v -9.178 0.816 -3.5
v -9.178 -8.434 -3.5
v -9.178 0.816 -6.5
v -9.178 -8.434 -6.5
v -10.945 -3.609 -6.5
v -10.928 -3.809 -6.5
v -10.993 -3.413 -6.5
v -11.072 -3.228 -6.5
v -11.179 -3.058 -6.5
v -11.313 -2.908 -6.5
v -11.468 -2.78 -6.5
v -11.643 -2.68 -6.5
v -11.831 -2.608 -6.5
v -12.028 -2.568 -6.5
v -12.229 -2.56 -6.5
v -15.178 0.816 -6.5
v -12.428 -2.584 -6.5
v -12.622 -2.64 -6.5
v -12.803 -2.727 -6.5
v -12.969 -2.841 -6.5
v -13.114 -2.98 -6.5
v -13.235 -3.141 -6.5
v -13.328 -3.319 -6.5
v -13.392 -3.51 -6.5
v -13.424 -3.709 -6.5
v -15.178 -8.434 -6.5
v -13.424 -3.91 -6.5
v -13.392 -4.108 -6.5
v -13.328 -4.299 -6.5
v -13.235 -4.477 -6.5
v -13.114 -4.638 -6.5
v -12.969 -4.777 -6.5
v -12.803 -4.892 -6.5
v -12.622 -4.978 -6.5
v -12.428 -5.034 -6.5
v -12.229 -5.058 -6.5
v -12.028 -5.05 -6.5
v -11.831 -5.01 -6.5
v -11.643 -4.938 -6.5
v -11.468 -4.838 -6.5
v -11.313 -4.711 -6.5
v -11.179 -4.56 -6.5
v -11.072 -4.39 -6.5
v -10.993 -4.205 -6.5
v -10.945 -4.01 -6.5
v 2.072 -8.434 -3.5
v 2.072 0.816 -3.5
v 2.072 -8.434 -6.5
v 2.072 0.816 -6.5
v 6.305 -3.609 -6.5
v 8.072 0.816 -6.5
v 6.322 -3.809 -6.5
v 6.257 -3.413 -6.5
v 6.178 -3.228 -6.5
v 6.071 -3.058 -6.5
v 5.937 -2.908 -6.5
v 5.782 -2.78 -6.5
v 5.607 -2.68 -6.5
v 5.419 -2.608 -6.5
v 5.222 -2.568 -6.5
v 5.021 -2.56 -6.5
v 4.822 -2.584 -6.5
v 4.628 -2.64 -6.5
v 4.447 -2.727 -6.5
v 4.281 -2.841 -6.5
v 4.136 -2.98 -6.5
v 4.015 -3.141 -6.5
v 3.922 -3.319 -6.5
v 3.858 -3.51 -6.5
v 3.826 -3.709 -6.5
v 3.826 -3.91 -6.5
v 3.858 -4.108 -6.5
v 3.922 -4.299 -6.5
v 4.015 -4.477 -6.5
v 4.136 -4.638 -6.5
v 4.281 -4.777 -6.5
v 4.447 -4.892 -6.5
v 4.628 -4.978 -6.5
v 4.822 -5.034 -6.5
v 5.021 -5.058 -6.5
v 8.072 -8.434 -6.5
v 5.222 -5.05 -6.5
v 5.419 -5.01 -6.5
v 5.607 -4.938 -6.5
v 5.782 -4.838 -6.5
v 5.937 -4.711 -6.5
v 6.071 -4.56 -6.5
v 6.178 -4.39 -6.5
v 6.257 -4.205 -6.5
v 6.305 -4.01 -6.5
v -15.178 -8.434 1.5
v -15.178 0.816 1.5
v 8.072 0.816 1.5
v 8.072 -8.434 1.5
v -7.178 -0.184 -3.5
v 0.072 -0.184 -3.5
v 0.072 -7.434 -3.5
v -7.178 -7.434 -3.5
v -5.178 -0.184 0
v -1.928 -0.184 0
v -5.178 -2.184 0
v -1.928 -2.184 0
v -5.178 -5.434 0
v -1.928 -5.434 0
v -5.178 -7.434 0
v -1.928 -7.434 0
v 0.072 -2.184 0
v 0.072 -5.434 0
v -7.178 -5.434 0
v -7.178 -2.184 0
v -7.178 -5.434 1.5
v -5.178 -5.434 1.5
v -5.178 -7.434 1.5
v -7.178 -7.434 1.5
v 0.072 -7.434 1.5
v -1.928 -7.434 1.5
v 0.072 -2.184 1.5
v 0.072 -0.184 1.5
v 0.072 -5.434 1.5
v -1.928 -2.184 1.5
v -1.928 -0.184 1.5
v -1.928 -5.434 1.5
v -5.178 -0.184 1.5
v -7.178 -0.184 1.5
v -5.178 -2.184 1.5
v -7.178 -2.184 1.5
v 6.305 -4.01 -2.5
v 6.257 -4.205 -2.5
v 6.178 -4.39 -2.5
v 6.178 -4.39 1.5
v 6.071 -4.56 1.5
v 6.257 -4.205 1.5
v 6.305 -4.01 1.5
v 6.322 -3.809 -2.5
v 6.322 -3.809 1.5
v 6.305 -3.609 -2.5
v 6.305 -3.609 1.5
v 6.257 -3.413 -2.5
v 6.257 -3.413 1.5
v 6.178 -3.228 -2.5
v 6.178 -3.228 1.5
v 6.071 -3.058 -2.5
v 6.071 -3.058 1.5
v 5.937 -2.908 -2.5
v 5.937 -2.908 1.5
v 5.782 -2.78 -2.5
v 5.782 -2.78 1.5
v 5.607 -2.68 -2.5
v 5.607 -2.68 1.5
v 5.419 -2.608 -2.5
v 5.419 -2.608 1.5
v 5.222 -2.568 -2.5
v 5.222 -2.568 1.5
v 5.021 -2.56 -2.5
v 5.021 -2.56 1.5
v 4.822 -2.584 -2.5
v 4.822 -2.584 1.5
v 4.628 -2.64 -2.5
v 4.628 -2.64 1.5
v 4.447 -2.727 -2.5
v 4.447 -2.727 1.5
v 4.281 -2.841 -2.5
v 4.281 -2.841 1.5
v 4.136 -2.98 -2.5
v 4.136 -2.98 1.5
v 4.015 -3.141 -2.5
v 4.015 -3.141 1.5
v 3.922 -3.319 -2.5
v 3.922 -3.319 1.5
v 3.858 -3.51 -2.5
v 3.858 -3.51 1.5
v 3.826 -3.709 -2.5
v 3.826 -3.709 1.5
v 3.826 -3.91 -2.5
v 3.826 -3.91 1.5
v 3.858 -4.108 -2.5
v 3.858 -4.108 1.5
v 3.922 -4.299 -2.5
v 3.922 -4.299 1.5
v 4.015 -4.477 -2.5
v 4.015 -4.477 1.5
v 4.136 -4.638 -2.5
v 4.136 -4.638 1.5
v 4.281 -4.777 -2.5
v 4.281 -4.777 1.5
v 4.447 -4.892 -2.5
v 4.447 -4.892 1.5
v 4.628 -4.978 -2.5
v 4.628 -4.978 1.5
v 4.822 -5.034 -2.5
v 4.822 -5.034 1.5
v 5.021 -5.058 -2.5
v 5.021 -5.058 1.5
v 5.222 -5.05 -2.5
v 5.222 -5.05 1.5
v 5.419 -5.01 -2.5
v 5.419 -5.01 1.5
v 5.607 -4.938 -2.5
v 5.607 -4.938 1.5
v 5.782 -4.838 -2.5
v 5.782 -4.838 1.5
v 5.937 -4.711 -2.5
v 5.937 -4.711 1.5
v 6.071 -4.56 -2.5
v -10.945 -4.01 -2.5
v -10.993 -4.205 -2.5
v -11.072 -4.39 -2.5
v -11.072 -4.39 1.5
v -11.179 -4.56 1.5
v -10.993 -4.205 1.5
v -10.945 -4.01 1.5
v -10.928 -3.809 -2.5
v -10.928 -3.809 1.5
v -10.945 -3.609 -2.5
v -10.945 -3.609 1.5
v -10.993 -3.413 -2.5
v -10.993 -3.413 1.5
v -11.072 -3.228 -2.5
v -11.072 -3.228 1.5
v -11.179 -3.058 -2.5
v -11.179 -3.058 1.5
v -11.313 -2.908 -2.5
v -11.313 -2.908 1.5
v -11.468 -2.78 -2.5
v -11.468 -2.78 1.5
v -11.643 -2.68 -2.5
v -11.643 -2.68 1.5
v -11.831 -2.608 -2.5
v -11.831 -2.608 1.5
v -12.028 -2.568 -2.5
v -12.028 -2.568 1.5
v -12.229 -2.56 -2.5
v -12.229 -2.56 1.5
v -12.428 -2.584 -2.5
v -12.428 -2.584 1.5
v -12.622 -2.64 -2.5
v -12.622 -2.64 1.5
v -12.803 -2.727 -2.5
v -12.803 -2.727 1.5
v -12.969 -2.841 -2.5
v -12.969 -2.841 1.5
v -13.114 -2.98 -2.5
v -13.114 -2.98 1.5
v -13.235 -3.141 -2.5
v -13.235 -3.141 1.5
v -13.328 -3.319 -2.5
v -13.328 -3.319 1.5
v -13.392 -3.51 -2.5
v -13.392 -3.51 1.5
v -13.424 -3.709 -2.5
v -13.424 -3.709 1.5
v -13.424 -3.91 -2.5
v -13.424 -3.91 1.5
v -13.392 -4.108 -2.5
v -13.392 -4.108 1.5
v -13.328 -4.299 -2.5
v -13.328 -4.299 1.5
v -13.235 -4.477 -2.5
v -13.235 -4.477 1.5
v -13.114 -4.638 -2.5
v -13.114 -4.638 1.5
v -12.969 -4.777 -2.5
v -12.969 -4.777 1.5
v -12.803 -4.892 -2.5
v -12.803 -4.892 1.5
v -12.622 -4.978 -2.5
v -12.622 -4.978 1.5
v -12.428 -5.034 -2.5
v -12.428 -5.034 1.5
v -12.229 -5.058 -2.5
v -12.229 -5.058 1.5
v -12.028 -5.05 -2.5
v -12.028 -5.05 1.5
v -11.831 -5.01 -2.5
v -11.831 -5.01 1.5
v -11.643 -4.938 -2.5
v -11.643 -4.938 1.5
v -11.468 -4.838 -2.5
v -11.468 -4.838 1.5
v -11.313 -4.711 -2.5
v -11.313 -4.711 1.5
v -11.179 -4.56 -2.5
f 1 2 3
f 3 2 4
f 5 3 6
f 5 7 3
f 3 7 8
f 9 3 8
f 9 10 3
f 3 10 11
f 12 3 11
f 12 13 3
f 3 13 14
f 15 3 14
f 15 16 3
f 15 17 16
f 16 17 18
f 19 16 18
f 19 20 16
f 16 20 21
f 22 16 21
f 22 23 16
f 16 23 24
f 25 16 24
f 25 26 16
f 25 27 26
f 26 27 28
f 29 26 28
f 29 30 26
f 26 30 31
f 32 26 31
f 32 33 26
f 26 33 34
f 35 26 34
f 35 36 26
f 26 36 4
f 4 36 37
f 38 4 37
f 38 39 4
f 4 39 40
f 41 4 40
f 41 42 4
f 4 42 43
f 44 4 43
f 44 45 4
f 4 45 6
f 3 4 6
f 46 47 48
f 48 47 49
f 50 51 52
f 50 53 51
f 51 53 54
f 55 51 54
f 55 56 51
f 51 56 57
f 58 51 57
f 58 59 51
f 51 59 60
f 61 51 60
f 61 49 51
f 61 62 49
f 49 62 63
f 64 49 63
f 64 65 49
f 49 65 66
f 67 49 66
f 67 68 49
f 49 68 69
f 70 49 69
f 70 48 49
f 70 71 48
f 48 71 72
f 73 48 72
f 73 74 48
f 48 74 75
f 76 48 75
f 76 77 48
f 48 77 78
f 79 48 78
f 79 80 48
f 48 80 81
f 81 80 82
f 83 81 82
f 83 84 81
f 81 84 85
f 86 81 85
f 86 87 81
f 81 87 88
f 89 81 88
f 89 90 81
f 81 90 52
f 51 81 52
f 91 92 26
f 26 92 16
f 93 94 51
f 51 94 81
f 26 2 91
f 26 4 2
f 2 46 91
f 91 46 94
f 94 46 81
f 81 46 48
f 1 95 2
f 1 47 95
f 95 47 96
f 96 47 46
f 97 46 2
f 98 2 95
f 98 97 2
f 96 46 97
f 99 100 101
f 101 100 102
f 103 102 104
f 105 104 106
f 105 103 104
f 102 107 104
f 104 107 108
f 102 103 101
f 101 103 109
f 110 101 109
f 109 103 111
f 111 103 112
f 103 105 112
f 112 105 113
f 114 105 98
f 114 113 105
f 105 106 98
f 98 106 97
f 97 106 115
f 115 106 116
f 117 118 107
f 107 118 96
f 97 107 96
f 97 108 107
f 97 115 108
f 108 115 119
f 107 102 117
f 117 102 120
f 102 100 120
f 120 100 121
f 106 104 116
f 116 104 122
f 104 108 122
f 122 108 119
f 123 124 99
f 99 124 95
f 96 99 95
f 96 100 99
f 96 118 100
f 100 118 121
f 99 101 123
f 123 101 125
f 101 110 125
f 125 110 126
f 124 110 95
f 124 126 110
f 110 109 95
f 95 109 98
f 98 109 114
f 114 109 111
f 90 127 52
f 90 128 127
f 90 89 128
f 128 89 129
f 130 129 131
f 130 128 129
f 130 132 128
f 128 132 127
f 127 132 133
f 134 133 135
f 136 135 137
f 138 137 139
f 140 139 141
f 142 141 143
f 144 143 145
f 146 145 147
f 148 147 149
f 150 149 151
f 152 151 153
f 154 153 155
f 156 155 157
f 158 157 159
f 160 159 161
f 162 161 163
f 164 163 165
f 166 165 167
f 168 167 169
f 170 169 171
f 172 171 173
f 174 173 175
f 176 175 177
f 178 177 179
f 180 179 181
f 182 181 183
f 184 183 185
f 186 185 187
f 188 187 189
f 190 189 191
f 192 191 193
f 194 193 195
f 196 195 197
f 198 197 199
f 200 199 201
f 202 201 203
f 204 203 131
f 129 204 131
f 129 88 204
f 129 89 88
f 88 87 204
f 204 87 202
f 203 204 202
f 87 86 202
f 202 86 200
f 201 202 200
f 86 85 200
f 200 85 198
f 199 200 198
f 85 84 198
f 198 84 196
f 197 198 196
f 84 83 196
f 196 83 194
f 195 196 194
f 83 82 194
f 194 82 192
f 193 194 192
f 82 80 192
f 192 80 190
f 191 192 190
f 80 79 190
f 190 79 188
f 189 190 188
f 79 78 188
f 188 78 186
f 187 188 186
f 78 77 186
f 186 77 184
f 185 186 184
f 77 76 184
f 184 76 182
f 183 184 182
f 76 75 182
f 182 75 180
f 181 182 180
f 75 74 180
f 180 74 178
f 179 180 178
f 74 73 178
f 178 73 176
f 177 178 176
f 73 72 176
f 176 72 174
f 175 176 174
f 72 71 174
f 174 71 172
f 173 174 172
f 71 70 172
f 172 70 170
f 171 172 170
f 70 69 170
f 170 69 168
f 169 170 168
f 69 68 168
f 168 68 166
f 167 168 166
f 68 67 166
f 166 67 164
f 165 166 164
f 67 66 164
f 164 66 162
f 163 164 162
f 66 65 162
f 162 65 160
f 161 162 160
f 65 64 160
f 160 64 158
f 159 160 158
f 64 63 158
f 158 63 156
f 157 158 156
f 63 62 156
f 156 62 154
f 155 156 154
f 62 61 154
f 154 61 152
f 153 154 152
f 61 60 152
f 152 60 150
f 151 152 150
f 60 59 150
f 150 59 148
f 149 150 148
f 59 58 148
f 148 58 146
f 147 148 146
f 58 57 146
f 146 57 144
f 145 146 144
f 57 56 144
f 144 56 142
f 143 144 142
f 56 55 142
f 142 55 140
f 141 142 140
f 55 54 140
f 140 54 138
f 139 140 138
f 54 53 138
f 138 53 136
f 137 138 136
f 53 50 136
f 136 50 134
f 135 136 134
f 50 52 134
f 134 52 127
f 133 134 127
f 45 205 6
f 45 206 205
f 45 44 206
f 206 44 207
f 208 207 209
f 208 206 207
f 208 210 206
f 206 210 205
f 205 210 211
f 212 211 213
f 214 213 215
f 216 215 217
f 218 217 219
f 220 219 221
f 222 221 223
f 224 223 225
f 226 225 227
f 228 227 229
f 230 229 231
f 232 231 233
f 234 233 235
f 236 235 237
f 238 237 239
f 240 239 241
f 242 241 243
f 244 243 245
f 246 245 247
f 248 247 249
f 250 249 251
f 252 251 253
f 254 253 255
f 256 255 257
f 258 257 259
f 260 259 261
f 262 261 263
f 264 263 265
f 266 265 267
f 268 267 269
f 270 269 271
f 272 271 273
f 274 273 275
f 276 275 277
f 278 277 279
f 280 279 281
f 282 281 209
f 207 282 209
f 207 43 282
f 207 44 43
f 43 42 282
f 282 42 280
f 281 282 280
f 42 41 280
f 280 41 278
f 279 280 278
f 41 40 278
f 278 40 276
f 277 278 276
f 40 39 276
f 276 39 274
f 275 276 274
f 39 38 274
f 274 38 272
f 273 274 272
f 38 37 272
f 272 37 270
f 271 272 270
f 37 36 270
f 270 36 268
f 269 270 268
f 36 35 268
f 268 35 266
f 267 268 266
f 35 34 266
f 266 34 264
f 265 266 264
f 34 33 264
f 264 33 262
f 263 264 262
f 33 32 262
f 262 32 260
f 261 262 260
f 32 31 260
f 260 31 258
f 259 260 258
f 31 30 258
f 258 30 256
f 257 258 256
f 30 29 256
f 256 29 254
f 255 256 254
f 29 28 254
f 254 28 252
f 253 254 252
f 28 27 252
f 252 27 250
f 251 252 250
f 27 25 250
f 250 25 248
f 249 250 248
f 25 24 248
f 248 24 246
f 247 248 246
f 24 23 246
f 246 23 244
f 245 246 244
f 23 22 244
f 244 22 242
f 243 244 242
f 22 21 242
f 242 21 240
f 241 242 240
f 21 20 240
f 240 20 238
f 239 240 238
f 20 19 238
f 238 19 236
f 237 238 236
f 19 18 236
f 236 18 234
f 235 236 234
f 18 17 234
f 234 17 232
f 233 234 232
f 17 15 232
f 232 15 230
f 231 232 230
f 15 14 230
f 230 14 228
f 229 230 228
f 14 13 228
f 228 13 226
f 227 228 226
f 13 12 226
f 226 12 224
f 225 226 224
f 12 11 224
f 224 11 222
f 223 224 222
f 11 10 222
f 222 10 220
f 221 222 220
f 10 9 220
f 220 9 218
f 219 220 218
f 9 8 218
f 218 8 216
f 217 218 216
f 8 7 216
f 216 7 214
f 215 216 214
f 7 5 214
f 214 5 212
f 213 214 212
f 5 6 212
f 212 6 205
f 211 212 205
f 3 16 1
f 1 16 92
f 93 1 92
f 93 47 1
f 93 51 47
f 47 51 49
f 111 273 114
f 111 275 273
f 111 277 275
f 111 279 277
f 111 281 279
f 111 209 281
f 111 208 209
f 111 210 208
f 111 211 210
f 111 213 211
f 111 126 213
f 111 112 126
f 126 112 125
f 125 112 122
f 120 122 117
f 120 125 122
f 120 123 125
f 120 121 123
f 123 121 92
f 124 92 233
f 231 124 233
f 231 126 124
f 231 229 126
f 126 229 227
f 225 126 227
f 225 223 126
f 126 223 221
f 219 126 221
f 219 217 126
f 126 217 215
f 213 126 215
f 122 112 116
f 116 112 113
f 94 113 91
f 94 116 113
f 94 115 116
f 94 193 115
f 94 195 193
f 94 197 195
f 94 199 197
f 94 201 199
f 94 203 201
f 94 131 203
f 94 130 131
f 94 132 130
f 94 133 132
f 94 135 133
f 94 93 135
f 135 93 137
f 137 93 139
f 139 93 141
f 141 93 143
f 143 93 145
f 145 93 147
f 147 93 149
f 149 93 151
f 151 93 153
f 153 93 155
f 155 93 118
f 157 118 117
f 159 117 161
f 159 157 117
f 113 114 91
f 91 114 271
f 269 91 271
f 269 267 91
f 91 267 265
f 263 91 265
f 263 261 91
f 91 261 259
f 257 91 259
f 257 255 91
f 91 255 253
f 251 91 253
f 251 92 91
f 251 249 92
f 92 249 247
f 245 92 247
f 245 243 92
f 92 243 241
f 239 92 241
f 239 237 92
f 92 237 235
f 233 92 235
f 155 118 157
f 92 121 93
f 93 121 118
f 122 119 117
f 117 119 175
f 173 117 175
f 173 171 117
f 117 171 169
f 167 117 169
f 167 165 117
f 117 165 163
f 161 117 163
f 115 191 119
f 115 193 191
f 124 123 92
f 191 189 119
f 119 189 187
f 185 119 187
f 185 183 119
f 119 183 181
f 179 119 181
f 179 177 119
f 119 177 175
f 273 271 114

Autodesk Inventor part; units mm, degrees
ref_plane "YZ Plane" through (0, 0, 0) normal (1, 0, 0) x (0, 1, 0)
ref_plane "XZ Plane" through (0, 0, 0) normal (0, 1, 0) x (-1, 0, 0)
ref_plane "XY Plane" through (0, 0, 0) normal (0, 0, 1) x (1, 0, 0)
sketch "Sketch1" plane through (0, 0, 0) normal (0, 0, 1) x (1, 0, 0)
  line L0 (-7.1784, -0.1841) -> (0.0716, -0.1841)
  line L1 (0.0716, -0.1841) -> (0.0716, -7.4341)
  line L2 (0.0716, -7.4341) -> (-7.1784, -7.4341)
  line L3 (-7.1784, -7.4341) -> (-7.1784, -0.1841)
  line L4 (-7.1784, -2.1841) -> (-5.1784, -2.1841)
  line L5 (-5.1784, -2.1841) -> (-5.1784, -0.1841)
  line L6 (-1.9284, -0.1841) -> (-1.9284, -2.1841)
  line L7 (-1.9284, -2.1841) -> (0.0716, -2.1841)
  line L8 (-7.1784, -5.4341) -> (-5.1784, -5.4341)
  line L9 (-5.1784, -5.4341) -> (-5.1784, -7.4341)
  line L10 (-1.9284, -5.4341) -> (0.0716, -5.4341)
  line L11 (-1.9284, -5.4341) -> (-1.9284, -7.4341)
  line L12 (8.0716, 0.8159) -> (8.0716, -8.4341)
  line L13 (-15.1784, -8.4341) -> (-15.1784, 0.8159)
  circle A0 centre (-12.1784, -3.8091) radius 1.25
  circle A1 centre (5.0716, -3.8091) radius 1.25
  line L14 (-15.1784, 0.8159) -> (-9.1784, 0.8159)
  line L15 (-9.1784, 0.8159) -> (-9.1784, -8.4341)
  line L16 (-9.1784, -8.4341) -> (-15.1784, -8.4341)
  line L17 (-15.1784, -8.4341) -> (-15.1784, 0.8159)
  line L18 (8.0716, 0.8159) -> (2.0716, 0.8159)
  line L19 (2.0716, 0.8159) -> (2.0716, -8.4341)
  line L20 (2.0716, -8.4341) -> (8.0716, -8.4341)
  line L21 (8.0716, -8.4341) -> (8.0716, 0.8159)
  line L22 (-9.1784, 0.8159) -> (2.0716, 0.8159)
  line L23 (-9.1784, -8.4341) -> (2.0716, -8.4341)
  line L24 (-15.1784, 0.8159) -> (-21.6784, 0.8159)
  line L25 (-21.6784, 0.8159) -> (-21.6784, -8.4341)
  line L26 (-21.6784, -8.4341) -> (-15.1784, -8.4341)
  line L27 (-15.1784, -8.4341) -> (-15.1784, 0.8159)
  circle A2 centre (-18.4284, -3.8091) radius 2.625
  point P0 (0, 0)
  dimension "d0" = 7.25
  dimension "d1" = 7.25
  dimension "d2" = 2
  dimension "d3" = 2
  dimension "d4" = 2
  dimension "d5" = 2
  dimension "d6" = 8
  dimension "d7" = 8
  dimension "d10" = 2.5
  dimension "d11" = 2.5
  dimension "d12" = 6
  dimension "d13" = 6
  dimension "d14" = 3
  dimension "d15" = 3
  dimension "d23" = 1
  dimension "d24" = 1
  dimension "d25" = 9.25
  dimension "d26" = 4.625
  dimension "d27" = 4.625
  dimension "d28" = 17.25
  dimension "d29" = 5.25
  dimension "d30" = 3.25
  dimension "d31" = 6.5
  dimension "d33" = 6.25
extrude "Extrusion1" add sketch "Sketch1" along normal blind 1.5 contours L0 L6 L7 L1 L10 L11 L2 L9 L8 L3 L4 L5 | L12 L20 L19 L18 | L19 L23 L15 L22 | L15 L16 L13 L14
extrude "Extrusion2" add sketch "Sketch1" against normal blind 3.5 contours L12 L20 L19 L18 | L19 L23 L15 L22 | L15 L16 L13 L14
extrude "Extrusion3" add sketch "Sketch1" against normal blind 6.5 contours L12 L20 L19 L18 | L15 L16 L13 L14
equation "\"d2\" = d5"
equation "\"d3\" = d5"
equation "\"d4\" = d5"
equation "\"d13\" = d12"
equation "\"d15\" = d14"
equation "\"d26\" = 0.5 * d25"
equation "\"d27\" = d26"
properties part number "tac switch body"
